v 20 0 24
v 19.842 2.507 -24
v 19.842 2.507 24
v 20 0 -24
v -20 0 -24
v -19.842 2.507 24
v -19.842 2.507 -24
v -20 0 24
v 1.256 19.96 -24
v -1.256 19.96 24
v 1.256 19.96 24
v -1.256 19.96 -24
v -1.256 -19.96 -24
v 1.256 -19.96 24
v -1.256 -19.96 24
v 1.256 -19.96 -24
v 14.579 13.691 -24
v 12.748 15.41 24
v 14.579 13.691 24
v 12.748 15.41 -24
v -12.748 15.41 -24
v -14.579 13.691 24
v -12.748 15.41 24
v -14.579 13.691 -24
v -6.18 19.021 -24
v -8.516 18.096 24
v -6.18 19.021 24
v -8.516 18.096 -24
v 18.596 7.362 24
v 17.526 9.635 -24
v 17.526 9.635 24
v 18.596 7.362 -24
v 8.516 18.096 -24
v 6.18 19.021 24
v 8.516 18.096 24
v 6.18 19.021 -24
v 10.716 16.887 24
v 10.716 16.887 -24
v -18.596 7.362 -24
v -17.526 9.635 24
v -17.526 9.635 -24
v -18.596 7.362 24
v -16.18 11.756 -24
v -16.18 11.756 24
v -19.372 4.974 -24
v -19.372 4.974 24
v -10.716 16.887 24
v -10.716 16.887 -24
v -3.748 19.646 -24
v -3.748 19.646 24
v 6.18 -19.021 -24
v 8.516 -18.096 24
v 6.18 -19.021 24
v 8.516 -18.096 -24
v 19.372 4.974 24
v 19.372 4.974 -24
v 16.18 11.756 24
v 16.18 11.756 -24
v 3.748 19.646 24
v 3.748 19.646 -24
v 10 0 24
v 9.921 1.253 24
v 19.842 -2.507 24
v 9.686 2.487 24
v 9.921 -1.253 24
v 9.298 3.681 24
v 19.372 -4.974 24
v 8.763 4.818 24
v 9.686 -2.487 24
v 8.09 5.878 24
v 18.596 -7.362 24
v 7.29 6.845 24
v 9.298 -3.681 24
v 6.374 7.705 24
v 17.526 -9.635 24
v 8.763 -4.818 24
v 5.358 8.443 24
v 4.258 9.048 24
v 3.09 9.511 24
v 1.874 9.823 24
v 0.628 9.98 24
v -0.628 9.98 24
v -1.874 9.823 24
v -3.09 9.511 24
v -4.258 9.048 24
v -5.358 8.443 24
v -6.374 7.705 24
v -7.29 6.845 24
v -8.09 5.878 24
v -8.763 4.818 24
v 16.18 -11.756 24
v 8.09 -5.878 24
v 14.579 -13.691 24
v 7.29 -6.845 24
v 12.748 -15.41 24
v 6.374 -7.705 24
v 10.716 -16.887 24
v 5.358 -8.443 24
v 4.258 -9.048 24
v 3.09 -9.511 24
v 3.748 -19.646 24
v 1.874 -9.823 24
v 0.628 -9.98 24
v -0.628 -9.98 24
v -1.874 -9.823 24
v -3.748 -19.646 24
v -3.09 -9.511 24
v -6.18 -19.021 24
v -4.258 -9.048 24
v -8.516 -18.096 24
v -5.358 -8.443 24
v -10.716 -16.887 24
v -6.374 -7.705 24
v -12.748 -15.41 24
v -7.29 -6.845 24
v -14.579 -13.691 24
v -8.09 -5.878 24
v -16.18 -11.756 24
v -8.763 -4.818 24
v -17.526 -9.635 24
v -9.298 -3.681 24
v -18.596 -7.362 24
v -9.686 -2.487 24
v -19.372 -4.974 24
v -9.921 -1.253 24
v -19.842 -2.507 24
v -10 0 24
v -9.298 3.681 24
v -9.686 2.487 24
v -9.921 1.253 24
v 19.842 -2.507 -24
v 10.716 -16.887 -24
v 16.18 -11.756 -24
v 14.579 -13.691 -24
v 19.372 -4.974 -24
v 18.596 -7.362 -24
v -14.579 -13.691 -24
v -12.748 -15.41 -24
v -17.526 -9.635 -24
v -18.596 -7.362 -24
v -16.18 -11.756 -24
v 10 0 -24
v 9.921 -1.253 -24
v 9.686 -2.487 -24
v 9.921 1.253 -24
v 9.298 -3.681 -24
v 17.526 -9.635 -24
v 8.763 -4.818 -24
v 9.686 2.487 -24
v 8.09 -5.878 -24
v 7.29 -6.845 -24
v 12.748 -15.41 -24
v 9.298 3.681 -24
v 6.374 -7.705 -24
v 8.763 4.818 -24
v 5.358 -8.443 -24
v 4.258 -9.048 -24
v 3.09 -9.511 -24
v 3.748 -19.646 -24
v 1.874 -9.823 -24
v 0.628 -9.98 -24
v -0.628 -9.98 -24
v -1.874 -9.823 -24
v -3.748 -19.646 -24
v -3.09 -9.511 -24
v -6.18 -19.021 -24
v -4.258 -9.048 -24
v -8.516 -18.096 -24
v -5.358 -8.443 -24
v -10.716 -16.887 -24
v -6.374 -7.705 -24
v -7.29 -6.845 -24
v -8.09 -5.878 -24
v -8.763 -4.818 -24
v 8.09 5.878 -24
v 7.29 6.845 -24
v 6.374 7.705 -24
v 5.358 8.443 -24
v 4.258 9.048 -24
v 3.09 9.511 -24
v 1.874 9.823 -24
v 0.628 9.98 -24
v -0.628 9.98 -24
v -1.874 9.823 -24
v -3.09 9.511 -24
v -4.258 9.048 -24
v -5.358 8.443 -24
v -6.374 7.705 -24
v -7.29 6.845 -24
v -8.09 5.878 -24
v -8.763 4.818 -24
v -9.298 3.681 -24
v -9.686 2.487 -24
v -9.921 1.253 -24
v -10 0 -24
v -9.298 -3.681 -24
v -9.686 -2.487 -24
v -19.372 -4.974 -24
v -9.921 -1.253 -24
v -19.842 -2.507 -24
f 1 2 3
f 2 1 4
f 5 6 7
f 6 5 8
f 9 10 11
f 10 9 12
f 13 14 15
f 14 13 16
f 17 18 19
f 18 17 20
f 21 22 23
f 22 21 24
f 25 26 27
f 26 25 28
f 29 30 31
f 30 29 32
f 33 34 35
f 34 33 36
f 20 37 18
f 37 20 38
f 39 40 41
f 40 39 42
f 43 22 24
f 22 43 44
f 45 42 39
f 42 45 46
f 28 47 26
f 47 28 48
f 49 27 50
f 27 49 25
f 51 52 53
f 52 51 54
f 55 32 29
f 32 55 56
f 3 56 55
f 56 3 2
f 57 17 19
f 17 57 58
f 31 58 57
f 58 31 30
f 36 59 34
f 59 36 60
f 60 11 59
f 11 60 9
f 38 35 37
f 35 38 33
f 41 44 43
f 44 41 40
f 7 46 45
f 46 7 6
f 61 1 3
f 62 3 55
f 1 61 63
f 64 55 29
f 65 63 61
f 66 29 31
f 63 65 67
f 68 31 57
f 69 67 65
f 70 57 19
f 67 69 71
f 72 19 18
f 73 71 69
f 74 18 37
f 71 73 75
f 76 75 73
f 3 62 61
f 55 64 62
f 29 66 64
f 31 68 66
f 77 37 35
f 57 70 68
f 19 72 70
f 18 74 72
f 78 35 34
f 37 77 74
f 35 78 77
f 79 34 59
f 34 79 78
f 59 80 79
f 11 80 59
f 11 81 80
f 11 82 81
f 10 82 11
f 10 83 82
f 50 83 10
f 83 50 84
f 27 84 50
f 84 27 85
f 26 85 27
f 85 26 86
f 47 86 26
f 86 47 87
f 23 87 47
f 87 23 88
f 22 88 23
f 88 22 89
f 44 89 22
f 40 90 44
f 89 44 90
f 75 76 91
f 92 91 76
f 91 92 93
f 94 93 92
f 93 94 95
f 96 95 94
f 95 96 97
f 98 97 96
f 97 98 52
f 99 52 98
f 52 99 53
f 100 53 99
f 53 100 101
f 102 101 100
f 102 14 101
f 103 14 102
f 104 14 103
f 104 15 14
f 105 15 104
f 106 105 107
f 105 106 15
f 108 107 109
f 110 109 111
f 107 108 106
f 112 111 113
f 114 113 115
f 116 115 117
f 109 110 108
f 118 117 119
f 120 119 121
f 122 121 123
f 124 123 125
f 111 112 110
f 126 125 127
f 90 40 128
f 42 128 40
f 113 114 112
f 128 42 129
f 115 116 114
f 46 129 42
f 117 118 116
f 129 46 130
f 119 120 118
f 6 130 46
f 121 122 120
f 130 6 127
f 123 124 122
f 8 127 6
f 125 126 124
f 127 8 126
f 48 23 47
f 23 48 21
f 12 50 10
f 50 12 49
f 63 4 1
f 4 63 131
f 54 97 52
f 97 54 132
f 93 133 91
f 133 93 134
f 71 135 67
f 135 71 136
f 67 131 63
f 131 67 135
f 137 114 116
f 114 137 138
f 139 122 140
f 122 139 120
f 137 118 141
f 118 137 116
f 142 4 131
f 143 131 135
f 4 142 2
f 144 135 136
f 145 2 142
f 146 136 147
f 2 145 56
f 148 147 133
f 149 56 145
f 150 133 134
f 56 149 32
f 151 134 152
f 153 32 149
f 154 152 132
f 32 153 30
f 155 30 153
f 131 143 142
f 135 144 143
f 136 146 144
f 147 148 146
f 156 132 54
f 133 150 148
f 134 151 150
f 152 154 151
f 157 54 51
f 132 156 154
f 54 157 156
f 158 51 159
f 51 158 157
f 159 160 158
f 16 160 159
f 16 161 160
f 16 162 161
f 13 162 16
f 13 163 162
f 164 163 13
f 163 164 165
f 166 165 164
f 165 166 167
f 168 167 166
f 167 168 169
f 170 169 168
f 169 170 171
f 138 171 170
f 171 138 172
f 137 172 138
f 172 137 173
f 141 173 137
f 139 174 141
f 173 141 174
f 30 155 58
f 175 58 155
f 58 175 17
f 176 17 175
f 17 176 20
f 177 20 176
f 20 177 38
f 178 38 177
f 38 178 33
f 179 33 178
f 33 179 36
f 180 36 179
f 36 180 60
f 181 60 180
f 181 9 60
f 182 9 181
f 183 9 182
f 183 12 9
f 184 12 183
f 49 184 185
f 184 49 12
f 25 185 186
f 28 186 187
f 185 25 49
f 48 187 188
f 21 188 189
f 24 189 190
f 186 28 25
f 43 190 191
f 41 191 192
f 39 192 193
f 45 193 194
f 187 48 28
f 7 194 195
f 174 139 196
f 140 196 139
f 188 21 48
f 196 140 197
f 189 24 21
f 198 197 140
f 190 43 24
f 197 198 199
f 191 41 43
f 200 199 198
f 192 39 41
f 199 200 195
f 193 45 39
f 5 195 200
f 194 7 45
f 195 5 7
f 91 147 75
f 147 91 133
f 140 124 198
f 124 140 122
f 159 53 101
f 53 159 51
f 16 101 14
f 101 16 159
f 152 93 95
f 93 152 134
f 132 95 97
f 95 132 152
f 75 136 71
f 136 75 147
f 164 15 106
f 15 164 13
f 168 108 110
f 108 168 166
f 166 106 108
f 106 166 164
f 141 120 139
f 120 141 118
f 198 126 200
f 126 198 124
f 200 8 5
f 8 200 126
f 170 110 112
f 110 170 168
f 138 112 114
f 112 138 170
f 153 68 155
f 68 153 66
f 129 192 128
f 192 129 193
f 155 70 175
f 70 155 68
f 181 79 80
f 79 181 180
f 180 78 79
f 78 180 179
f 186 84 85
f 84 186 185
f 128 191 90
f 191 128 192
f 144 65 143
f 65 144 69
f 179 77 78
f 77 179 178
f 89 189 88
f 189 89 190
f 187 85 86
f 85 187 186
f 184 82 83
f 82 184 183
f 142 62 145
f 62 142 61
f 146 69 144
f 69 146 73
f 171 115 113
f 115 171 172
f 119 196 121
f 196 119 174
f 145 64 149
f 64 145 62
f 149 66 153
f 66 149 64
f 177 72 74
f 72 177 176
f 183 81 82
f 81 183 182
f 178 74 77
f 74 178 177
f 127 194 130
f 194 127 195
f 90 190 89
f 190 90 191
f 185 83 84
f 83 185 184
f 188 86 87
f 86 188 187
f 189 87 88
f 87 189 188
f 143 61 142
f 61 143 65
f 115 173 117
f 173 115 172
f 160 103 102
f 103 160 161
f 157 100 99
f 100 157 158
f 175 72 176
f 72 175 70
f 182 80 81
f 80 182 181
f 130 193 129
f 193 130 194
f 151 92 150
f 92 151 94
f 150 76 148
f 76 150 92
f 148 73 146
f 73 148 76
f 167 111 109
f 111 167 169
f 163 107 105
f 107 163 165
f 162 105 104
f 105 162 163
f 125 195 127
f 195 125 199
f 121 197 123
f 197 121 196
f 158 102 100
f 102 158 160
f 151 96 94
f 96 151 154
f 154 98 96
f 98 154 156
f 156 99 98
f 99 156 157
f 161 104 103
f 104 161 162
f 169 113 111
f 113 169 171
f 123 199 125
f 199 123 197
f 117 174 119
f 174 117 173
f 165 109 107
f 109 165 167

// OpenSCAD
$fn = 50;


difference() {
	union() {
		translate(v = [0, 0, -24.0000000000]) {
			cylinder(h = 48, r = 20.0000000000);
		}
	}
	union() {
		translate(v = [0, 0, -100.0000000000]) {
			cylinder(h = 200, r = 10);
		}
	}
}
